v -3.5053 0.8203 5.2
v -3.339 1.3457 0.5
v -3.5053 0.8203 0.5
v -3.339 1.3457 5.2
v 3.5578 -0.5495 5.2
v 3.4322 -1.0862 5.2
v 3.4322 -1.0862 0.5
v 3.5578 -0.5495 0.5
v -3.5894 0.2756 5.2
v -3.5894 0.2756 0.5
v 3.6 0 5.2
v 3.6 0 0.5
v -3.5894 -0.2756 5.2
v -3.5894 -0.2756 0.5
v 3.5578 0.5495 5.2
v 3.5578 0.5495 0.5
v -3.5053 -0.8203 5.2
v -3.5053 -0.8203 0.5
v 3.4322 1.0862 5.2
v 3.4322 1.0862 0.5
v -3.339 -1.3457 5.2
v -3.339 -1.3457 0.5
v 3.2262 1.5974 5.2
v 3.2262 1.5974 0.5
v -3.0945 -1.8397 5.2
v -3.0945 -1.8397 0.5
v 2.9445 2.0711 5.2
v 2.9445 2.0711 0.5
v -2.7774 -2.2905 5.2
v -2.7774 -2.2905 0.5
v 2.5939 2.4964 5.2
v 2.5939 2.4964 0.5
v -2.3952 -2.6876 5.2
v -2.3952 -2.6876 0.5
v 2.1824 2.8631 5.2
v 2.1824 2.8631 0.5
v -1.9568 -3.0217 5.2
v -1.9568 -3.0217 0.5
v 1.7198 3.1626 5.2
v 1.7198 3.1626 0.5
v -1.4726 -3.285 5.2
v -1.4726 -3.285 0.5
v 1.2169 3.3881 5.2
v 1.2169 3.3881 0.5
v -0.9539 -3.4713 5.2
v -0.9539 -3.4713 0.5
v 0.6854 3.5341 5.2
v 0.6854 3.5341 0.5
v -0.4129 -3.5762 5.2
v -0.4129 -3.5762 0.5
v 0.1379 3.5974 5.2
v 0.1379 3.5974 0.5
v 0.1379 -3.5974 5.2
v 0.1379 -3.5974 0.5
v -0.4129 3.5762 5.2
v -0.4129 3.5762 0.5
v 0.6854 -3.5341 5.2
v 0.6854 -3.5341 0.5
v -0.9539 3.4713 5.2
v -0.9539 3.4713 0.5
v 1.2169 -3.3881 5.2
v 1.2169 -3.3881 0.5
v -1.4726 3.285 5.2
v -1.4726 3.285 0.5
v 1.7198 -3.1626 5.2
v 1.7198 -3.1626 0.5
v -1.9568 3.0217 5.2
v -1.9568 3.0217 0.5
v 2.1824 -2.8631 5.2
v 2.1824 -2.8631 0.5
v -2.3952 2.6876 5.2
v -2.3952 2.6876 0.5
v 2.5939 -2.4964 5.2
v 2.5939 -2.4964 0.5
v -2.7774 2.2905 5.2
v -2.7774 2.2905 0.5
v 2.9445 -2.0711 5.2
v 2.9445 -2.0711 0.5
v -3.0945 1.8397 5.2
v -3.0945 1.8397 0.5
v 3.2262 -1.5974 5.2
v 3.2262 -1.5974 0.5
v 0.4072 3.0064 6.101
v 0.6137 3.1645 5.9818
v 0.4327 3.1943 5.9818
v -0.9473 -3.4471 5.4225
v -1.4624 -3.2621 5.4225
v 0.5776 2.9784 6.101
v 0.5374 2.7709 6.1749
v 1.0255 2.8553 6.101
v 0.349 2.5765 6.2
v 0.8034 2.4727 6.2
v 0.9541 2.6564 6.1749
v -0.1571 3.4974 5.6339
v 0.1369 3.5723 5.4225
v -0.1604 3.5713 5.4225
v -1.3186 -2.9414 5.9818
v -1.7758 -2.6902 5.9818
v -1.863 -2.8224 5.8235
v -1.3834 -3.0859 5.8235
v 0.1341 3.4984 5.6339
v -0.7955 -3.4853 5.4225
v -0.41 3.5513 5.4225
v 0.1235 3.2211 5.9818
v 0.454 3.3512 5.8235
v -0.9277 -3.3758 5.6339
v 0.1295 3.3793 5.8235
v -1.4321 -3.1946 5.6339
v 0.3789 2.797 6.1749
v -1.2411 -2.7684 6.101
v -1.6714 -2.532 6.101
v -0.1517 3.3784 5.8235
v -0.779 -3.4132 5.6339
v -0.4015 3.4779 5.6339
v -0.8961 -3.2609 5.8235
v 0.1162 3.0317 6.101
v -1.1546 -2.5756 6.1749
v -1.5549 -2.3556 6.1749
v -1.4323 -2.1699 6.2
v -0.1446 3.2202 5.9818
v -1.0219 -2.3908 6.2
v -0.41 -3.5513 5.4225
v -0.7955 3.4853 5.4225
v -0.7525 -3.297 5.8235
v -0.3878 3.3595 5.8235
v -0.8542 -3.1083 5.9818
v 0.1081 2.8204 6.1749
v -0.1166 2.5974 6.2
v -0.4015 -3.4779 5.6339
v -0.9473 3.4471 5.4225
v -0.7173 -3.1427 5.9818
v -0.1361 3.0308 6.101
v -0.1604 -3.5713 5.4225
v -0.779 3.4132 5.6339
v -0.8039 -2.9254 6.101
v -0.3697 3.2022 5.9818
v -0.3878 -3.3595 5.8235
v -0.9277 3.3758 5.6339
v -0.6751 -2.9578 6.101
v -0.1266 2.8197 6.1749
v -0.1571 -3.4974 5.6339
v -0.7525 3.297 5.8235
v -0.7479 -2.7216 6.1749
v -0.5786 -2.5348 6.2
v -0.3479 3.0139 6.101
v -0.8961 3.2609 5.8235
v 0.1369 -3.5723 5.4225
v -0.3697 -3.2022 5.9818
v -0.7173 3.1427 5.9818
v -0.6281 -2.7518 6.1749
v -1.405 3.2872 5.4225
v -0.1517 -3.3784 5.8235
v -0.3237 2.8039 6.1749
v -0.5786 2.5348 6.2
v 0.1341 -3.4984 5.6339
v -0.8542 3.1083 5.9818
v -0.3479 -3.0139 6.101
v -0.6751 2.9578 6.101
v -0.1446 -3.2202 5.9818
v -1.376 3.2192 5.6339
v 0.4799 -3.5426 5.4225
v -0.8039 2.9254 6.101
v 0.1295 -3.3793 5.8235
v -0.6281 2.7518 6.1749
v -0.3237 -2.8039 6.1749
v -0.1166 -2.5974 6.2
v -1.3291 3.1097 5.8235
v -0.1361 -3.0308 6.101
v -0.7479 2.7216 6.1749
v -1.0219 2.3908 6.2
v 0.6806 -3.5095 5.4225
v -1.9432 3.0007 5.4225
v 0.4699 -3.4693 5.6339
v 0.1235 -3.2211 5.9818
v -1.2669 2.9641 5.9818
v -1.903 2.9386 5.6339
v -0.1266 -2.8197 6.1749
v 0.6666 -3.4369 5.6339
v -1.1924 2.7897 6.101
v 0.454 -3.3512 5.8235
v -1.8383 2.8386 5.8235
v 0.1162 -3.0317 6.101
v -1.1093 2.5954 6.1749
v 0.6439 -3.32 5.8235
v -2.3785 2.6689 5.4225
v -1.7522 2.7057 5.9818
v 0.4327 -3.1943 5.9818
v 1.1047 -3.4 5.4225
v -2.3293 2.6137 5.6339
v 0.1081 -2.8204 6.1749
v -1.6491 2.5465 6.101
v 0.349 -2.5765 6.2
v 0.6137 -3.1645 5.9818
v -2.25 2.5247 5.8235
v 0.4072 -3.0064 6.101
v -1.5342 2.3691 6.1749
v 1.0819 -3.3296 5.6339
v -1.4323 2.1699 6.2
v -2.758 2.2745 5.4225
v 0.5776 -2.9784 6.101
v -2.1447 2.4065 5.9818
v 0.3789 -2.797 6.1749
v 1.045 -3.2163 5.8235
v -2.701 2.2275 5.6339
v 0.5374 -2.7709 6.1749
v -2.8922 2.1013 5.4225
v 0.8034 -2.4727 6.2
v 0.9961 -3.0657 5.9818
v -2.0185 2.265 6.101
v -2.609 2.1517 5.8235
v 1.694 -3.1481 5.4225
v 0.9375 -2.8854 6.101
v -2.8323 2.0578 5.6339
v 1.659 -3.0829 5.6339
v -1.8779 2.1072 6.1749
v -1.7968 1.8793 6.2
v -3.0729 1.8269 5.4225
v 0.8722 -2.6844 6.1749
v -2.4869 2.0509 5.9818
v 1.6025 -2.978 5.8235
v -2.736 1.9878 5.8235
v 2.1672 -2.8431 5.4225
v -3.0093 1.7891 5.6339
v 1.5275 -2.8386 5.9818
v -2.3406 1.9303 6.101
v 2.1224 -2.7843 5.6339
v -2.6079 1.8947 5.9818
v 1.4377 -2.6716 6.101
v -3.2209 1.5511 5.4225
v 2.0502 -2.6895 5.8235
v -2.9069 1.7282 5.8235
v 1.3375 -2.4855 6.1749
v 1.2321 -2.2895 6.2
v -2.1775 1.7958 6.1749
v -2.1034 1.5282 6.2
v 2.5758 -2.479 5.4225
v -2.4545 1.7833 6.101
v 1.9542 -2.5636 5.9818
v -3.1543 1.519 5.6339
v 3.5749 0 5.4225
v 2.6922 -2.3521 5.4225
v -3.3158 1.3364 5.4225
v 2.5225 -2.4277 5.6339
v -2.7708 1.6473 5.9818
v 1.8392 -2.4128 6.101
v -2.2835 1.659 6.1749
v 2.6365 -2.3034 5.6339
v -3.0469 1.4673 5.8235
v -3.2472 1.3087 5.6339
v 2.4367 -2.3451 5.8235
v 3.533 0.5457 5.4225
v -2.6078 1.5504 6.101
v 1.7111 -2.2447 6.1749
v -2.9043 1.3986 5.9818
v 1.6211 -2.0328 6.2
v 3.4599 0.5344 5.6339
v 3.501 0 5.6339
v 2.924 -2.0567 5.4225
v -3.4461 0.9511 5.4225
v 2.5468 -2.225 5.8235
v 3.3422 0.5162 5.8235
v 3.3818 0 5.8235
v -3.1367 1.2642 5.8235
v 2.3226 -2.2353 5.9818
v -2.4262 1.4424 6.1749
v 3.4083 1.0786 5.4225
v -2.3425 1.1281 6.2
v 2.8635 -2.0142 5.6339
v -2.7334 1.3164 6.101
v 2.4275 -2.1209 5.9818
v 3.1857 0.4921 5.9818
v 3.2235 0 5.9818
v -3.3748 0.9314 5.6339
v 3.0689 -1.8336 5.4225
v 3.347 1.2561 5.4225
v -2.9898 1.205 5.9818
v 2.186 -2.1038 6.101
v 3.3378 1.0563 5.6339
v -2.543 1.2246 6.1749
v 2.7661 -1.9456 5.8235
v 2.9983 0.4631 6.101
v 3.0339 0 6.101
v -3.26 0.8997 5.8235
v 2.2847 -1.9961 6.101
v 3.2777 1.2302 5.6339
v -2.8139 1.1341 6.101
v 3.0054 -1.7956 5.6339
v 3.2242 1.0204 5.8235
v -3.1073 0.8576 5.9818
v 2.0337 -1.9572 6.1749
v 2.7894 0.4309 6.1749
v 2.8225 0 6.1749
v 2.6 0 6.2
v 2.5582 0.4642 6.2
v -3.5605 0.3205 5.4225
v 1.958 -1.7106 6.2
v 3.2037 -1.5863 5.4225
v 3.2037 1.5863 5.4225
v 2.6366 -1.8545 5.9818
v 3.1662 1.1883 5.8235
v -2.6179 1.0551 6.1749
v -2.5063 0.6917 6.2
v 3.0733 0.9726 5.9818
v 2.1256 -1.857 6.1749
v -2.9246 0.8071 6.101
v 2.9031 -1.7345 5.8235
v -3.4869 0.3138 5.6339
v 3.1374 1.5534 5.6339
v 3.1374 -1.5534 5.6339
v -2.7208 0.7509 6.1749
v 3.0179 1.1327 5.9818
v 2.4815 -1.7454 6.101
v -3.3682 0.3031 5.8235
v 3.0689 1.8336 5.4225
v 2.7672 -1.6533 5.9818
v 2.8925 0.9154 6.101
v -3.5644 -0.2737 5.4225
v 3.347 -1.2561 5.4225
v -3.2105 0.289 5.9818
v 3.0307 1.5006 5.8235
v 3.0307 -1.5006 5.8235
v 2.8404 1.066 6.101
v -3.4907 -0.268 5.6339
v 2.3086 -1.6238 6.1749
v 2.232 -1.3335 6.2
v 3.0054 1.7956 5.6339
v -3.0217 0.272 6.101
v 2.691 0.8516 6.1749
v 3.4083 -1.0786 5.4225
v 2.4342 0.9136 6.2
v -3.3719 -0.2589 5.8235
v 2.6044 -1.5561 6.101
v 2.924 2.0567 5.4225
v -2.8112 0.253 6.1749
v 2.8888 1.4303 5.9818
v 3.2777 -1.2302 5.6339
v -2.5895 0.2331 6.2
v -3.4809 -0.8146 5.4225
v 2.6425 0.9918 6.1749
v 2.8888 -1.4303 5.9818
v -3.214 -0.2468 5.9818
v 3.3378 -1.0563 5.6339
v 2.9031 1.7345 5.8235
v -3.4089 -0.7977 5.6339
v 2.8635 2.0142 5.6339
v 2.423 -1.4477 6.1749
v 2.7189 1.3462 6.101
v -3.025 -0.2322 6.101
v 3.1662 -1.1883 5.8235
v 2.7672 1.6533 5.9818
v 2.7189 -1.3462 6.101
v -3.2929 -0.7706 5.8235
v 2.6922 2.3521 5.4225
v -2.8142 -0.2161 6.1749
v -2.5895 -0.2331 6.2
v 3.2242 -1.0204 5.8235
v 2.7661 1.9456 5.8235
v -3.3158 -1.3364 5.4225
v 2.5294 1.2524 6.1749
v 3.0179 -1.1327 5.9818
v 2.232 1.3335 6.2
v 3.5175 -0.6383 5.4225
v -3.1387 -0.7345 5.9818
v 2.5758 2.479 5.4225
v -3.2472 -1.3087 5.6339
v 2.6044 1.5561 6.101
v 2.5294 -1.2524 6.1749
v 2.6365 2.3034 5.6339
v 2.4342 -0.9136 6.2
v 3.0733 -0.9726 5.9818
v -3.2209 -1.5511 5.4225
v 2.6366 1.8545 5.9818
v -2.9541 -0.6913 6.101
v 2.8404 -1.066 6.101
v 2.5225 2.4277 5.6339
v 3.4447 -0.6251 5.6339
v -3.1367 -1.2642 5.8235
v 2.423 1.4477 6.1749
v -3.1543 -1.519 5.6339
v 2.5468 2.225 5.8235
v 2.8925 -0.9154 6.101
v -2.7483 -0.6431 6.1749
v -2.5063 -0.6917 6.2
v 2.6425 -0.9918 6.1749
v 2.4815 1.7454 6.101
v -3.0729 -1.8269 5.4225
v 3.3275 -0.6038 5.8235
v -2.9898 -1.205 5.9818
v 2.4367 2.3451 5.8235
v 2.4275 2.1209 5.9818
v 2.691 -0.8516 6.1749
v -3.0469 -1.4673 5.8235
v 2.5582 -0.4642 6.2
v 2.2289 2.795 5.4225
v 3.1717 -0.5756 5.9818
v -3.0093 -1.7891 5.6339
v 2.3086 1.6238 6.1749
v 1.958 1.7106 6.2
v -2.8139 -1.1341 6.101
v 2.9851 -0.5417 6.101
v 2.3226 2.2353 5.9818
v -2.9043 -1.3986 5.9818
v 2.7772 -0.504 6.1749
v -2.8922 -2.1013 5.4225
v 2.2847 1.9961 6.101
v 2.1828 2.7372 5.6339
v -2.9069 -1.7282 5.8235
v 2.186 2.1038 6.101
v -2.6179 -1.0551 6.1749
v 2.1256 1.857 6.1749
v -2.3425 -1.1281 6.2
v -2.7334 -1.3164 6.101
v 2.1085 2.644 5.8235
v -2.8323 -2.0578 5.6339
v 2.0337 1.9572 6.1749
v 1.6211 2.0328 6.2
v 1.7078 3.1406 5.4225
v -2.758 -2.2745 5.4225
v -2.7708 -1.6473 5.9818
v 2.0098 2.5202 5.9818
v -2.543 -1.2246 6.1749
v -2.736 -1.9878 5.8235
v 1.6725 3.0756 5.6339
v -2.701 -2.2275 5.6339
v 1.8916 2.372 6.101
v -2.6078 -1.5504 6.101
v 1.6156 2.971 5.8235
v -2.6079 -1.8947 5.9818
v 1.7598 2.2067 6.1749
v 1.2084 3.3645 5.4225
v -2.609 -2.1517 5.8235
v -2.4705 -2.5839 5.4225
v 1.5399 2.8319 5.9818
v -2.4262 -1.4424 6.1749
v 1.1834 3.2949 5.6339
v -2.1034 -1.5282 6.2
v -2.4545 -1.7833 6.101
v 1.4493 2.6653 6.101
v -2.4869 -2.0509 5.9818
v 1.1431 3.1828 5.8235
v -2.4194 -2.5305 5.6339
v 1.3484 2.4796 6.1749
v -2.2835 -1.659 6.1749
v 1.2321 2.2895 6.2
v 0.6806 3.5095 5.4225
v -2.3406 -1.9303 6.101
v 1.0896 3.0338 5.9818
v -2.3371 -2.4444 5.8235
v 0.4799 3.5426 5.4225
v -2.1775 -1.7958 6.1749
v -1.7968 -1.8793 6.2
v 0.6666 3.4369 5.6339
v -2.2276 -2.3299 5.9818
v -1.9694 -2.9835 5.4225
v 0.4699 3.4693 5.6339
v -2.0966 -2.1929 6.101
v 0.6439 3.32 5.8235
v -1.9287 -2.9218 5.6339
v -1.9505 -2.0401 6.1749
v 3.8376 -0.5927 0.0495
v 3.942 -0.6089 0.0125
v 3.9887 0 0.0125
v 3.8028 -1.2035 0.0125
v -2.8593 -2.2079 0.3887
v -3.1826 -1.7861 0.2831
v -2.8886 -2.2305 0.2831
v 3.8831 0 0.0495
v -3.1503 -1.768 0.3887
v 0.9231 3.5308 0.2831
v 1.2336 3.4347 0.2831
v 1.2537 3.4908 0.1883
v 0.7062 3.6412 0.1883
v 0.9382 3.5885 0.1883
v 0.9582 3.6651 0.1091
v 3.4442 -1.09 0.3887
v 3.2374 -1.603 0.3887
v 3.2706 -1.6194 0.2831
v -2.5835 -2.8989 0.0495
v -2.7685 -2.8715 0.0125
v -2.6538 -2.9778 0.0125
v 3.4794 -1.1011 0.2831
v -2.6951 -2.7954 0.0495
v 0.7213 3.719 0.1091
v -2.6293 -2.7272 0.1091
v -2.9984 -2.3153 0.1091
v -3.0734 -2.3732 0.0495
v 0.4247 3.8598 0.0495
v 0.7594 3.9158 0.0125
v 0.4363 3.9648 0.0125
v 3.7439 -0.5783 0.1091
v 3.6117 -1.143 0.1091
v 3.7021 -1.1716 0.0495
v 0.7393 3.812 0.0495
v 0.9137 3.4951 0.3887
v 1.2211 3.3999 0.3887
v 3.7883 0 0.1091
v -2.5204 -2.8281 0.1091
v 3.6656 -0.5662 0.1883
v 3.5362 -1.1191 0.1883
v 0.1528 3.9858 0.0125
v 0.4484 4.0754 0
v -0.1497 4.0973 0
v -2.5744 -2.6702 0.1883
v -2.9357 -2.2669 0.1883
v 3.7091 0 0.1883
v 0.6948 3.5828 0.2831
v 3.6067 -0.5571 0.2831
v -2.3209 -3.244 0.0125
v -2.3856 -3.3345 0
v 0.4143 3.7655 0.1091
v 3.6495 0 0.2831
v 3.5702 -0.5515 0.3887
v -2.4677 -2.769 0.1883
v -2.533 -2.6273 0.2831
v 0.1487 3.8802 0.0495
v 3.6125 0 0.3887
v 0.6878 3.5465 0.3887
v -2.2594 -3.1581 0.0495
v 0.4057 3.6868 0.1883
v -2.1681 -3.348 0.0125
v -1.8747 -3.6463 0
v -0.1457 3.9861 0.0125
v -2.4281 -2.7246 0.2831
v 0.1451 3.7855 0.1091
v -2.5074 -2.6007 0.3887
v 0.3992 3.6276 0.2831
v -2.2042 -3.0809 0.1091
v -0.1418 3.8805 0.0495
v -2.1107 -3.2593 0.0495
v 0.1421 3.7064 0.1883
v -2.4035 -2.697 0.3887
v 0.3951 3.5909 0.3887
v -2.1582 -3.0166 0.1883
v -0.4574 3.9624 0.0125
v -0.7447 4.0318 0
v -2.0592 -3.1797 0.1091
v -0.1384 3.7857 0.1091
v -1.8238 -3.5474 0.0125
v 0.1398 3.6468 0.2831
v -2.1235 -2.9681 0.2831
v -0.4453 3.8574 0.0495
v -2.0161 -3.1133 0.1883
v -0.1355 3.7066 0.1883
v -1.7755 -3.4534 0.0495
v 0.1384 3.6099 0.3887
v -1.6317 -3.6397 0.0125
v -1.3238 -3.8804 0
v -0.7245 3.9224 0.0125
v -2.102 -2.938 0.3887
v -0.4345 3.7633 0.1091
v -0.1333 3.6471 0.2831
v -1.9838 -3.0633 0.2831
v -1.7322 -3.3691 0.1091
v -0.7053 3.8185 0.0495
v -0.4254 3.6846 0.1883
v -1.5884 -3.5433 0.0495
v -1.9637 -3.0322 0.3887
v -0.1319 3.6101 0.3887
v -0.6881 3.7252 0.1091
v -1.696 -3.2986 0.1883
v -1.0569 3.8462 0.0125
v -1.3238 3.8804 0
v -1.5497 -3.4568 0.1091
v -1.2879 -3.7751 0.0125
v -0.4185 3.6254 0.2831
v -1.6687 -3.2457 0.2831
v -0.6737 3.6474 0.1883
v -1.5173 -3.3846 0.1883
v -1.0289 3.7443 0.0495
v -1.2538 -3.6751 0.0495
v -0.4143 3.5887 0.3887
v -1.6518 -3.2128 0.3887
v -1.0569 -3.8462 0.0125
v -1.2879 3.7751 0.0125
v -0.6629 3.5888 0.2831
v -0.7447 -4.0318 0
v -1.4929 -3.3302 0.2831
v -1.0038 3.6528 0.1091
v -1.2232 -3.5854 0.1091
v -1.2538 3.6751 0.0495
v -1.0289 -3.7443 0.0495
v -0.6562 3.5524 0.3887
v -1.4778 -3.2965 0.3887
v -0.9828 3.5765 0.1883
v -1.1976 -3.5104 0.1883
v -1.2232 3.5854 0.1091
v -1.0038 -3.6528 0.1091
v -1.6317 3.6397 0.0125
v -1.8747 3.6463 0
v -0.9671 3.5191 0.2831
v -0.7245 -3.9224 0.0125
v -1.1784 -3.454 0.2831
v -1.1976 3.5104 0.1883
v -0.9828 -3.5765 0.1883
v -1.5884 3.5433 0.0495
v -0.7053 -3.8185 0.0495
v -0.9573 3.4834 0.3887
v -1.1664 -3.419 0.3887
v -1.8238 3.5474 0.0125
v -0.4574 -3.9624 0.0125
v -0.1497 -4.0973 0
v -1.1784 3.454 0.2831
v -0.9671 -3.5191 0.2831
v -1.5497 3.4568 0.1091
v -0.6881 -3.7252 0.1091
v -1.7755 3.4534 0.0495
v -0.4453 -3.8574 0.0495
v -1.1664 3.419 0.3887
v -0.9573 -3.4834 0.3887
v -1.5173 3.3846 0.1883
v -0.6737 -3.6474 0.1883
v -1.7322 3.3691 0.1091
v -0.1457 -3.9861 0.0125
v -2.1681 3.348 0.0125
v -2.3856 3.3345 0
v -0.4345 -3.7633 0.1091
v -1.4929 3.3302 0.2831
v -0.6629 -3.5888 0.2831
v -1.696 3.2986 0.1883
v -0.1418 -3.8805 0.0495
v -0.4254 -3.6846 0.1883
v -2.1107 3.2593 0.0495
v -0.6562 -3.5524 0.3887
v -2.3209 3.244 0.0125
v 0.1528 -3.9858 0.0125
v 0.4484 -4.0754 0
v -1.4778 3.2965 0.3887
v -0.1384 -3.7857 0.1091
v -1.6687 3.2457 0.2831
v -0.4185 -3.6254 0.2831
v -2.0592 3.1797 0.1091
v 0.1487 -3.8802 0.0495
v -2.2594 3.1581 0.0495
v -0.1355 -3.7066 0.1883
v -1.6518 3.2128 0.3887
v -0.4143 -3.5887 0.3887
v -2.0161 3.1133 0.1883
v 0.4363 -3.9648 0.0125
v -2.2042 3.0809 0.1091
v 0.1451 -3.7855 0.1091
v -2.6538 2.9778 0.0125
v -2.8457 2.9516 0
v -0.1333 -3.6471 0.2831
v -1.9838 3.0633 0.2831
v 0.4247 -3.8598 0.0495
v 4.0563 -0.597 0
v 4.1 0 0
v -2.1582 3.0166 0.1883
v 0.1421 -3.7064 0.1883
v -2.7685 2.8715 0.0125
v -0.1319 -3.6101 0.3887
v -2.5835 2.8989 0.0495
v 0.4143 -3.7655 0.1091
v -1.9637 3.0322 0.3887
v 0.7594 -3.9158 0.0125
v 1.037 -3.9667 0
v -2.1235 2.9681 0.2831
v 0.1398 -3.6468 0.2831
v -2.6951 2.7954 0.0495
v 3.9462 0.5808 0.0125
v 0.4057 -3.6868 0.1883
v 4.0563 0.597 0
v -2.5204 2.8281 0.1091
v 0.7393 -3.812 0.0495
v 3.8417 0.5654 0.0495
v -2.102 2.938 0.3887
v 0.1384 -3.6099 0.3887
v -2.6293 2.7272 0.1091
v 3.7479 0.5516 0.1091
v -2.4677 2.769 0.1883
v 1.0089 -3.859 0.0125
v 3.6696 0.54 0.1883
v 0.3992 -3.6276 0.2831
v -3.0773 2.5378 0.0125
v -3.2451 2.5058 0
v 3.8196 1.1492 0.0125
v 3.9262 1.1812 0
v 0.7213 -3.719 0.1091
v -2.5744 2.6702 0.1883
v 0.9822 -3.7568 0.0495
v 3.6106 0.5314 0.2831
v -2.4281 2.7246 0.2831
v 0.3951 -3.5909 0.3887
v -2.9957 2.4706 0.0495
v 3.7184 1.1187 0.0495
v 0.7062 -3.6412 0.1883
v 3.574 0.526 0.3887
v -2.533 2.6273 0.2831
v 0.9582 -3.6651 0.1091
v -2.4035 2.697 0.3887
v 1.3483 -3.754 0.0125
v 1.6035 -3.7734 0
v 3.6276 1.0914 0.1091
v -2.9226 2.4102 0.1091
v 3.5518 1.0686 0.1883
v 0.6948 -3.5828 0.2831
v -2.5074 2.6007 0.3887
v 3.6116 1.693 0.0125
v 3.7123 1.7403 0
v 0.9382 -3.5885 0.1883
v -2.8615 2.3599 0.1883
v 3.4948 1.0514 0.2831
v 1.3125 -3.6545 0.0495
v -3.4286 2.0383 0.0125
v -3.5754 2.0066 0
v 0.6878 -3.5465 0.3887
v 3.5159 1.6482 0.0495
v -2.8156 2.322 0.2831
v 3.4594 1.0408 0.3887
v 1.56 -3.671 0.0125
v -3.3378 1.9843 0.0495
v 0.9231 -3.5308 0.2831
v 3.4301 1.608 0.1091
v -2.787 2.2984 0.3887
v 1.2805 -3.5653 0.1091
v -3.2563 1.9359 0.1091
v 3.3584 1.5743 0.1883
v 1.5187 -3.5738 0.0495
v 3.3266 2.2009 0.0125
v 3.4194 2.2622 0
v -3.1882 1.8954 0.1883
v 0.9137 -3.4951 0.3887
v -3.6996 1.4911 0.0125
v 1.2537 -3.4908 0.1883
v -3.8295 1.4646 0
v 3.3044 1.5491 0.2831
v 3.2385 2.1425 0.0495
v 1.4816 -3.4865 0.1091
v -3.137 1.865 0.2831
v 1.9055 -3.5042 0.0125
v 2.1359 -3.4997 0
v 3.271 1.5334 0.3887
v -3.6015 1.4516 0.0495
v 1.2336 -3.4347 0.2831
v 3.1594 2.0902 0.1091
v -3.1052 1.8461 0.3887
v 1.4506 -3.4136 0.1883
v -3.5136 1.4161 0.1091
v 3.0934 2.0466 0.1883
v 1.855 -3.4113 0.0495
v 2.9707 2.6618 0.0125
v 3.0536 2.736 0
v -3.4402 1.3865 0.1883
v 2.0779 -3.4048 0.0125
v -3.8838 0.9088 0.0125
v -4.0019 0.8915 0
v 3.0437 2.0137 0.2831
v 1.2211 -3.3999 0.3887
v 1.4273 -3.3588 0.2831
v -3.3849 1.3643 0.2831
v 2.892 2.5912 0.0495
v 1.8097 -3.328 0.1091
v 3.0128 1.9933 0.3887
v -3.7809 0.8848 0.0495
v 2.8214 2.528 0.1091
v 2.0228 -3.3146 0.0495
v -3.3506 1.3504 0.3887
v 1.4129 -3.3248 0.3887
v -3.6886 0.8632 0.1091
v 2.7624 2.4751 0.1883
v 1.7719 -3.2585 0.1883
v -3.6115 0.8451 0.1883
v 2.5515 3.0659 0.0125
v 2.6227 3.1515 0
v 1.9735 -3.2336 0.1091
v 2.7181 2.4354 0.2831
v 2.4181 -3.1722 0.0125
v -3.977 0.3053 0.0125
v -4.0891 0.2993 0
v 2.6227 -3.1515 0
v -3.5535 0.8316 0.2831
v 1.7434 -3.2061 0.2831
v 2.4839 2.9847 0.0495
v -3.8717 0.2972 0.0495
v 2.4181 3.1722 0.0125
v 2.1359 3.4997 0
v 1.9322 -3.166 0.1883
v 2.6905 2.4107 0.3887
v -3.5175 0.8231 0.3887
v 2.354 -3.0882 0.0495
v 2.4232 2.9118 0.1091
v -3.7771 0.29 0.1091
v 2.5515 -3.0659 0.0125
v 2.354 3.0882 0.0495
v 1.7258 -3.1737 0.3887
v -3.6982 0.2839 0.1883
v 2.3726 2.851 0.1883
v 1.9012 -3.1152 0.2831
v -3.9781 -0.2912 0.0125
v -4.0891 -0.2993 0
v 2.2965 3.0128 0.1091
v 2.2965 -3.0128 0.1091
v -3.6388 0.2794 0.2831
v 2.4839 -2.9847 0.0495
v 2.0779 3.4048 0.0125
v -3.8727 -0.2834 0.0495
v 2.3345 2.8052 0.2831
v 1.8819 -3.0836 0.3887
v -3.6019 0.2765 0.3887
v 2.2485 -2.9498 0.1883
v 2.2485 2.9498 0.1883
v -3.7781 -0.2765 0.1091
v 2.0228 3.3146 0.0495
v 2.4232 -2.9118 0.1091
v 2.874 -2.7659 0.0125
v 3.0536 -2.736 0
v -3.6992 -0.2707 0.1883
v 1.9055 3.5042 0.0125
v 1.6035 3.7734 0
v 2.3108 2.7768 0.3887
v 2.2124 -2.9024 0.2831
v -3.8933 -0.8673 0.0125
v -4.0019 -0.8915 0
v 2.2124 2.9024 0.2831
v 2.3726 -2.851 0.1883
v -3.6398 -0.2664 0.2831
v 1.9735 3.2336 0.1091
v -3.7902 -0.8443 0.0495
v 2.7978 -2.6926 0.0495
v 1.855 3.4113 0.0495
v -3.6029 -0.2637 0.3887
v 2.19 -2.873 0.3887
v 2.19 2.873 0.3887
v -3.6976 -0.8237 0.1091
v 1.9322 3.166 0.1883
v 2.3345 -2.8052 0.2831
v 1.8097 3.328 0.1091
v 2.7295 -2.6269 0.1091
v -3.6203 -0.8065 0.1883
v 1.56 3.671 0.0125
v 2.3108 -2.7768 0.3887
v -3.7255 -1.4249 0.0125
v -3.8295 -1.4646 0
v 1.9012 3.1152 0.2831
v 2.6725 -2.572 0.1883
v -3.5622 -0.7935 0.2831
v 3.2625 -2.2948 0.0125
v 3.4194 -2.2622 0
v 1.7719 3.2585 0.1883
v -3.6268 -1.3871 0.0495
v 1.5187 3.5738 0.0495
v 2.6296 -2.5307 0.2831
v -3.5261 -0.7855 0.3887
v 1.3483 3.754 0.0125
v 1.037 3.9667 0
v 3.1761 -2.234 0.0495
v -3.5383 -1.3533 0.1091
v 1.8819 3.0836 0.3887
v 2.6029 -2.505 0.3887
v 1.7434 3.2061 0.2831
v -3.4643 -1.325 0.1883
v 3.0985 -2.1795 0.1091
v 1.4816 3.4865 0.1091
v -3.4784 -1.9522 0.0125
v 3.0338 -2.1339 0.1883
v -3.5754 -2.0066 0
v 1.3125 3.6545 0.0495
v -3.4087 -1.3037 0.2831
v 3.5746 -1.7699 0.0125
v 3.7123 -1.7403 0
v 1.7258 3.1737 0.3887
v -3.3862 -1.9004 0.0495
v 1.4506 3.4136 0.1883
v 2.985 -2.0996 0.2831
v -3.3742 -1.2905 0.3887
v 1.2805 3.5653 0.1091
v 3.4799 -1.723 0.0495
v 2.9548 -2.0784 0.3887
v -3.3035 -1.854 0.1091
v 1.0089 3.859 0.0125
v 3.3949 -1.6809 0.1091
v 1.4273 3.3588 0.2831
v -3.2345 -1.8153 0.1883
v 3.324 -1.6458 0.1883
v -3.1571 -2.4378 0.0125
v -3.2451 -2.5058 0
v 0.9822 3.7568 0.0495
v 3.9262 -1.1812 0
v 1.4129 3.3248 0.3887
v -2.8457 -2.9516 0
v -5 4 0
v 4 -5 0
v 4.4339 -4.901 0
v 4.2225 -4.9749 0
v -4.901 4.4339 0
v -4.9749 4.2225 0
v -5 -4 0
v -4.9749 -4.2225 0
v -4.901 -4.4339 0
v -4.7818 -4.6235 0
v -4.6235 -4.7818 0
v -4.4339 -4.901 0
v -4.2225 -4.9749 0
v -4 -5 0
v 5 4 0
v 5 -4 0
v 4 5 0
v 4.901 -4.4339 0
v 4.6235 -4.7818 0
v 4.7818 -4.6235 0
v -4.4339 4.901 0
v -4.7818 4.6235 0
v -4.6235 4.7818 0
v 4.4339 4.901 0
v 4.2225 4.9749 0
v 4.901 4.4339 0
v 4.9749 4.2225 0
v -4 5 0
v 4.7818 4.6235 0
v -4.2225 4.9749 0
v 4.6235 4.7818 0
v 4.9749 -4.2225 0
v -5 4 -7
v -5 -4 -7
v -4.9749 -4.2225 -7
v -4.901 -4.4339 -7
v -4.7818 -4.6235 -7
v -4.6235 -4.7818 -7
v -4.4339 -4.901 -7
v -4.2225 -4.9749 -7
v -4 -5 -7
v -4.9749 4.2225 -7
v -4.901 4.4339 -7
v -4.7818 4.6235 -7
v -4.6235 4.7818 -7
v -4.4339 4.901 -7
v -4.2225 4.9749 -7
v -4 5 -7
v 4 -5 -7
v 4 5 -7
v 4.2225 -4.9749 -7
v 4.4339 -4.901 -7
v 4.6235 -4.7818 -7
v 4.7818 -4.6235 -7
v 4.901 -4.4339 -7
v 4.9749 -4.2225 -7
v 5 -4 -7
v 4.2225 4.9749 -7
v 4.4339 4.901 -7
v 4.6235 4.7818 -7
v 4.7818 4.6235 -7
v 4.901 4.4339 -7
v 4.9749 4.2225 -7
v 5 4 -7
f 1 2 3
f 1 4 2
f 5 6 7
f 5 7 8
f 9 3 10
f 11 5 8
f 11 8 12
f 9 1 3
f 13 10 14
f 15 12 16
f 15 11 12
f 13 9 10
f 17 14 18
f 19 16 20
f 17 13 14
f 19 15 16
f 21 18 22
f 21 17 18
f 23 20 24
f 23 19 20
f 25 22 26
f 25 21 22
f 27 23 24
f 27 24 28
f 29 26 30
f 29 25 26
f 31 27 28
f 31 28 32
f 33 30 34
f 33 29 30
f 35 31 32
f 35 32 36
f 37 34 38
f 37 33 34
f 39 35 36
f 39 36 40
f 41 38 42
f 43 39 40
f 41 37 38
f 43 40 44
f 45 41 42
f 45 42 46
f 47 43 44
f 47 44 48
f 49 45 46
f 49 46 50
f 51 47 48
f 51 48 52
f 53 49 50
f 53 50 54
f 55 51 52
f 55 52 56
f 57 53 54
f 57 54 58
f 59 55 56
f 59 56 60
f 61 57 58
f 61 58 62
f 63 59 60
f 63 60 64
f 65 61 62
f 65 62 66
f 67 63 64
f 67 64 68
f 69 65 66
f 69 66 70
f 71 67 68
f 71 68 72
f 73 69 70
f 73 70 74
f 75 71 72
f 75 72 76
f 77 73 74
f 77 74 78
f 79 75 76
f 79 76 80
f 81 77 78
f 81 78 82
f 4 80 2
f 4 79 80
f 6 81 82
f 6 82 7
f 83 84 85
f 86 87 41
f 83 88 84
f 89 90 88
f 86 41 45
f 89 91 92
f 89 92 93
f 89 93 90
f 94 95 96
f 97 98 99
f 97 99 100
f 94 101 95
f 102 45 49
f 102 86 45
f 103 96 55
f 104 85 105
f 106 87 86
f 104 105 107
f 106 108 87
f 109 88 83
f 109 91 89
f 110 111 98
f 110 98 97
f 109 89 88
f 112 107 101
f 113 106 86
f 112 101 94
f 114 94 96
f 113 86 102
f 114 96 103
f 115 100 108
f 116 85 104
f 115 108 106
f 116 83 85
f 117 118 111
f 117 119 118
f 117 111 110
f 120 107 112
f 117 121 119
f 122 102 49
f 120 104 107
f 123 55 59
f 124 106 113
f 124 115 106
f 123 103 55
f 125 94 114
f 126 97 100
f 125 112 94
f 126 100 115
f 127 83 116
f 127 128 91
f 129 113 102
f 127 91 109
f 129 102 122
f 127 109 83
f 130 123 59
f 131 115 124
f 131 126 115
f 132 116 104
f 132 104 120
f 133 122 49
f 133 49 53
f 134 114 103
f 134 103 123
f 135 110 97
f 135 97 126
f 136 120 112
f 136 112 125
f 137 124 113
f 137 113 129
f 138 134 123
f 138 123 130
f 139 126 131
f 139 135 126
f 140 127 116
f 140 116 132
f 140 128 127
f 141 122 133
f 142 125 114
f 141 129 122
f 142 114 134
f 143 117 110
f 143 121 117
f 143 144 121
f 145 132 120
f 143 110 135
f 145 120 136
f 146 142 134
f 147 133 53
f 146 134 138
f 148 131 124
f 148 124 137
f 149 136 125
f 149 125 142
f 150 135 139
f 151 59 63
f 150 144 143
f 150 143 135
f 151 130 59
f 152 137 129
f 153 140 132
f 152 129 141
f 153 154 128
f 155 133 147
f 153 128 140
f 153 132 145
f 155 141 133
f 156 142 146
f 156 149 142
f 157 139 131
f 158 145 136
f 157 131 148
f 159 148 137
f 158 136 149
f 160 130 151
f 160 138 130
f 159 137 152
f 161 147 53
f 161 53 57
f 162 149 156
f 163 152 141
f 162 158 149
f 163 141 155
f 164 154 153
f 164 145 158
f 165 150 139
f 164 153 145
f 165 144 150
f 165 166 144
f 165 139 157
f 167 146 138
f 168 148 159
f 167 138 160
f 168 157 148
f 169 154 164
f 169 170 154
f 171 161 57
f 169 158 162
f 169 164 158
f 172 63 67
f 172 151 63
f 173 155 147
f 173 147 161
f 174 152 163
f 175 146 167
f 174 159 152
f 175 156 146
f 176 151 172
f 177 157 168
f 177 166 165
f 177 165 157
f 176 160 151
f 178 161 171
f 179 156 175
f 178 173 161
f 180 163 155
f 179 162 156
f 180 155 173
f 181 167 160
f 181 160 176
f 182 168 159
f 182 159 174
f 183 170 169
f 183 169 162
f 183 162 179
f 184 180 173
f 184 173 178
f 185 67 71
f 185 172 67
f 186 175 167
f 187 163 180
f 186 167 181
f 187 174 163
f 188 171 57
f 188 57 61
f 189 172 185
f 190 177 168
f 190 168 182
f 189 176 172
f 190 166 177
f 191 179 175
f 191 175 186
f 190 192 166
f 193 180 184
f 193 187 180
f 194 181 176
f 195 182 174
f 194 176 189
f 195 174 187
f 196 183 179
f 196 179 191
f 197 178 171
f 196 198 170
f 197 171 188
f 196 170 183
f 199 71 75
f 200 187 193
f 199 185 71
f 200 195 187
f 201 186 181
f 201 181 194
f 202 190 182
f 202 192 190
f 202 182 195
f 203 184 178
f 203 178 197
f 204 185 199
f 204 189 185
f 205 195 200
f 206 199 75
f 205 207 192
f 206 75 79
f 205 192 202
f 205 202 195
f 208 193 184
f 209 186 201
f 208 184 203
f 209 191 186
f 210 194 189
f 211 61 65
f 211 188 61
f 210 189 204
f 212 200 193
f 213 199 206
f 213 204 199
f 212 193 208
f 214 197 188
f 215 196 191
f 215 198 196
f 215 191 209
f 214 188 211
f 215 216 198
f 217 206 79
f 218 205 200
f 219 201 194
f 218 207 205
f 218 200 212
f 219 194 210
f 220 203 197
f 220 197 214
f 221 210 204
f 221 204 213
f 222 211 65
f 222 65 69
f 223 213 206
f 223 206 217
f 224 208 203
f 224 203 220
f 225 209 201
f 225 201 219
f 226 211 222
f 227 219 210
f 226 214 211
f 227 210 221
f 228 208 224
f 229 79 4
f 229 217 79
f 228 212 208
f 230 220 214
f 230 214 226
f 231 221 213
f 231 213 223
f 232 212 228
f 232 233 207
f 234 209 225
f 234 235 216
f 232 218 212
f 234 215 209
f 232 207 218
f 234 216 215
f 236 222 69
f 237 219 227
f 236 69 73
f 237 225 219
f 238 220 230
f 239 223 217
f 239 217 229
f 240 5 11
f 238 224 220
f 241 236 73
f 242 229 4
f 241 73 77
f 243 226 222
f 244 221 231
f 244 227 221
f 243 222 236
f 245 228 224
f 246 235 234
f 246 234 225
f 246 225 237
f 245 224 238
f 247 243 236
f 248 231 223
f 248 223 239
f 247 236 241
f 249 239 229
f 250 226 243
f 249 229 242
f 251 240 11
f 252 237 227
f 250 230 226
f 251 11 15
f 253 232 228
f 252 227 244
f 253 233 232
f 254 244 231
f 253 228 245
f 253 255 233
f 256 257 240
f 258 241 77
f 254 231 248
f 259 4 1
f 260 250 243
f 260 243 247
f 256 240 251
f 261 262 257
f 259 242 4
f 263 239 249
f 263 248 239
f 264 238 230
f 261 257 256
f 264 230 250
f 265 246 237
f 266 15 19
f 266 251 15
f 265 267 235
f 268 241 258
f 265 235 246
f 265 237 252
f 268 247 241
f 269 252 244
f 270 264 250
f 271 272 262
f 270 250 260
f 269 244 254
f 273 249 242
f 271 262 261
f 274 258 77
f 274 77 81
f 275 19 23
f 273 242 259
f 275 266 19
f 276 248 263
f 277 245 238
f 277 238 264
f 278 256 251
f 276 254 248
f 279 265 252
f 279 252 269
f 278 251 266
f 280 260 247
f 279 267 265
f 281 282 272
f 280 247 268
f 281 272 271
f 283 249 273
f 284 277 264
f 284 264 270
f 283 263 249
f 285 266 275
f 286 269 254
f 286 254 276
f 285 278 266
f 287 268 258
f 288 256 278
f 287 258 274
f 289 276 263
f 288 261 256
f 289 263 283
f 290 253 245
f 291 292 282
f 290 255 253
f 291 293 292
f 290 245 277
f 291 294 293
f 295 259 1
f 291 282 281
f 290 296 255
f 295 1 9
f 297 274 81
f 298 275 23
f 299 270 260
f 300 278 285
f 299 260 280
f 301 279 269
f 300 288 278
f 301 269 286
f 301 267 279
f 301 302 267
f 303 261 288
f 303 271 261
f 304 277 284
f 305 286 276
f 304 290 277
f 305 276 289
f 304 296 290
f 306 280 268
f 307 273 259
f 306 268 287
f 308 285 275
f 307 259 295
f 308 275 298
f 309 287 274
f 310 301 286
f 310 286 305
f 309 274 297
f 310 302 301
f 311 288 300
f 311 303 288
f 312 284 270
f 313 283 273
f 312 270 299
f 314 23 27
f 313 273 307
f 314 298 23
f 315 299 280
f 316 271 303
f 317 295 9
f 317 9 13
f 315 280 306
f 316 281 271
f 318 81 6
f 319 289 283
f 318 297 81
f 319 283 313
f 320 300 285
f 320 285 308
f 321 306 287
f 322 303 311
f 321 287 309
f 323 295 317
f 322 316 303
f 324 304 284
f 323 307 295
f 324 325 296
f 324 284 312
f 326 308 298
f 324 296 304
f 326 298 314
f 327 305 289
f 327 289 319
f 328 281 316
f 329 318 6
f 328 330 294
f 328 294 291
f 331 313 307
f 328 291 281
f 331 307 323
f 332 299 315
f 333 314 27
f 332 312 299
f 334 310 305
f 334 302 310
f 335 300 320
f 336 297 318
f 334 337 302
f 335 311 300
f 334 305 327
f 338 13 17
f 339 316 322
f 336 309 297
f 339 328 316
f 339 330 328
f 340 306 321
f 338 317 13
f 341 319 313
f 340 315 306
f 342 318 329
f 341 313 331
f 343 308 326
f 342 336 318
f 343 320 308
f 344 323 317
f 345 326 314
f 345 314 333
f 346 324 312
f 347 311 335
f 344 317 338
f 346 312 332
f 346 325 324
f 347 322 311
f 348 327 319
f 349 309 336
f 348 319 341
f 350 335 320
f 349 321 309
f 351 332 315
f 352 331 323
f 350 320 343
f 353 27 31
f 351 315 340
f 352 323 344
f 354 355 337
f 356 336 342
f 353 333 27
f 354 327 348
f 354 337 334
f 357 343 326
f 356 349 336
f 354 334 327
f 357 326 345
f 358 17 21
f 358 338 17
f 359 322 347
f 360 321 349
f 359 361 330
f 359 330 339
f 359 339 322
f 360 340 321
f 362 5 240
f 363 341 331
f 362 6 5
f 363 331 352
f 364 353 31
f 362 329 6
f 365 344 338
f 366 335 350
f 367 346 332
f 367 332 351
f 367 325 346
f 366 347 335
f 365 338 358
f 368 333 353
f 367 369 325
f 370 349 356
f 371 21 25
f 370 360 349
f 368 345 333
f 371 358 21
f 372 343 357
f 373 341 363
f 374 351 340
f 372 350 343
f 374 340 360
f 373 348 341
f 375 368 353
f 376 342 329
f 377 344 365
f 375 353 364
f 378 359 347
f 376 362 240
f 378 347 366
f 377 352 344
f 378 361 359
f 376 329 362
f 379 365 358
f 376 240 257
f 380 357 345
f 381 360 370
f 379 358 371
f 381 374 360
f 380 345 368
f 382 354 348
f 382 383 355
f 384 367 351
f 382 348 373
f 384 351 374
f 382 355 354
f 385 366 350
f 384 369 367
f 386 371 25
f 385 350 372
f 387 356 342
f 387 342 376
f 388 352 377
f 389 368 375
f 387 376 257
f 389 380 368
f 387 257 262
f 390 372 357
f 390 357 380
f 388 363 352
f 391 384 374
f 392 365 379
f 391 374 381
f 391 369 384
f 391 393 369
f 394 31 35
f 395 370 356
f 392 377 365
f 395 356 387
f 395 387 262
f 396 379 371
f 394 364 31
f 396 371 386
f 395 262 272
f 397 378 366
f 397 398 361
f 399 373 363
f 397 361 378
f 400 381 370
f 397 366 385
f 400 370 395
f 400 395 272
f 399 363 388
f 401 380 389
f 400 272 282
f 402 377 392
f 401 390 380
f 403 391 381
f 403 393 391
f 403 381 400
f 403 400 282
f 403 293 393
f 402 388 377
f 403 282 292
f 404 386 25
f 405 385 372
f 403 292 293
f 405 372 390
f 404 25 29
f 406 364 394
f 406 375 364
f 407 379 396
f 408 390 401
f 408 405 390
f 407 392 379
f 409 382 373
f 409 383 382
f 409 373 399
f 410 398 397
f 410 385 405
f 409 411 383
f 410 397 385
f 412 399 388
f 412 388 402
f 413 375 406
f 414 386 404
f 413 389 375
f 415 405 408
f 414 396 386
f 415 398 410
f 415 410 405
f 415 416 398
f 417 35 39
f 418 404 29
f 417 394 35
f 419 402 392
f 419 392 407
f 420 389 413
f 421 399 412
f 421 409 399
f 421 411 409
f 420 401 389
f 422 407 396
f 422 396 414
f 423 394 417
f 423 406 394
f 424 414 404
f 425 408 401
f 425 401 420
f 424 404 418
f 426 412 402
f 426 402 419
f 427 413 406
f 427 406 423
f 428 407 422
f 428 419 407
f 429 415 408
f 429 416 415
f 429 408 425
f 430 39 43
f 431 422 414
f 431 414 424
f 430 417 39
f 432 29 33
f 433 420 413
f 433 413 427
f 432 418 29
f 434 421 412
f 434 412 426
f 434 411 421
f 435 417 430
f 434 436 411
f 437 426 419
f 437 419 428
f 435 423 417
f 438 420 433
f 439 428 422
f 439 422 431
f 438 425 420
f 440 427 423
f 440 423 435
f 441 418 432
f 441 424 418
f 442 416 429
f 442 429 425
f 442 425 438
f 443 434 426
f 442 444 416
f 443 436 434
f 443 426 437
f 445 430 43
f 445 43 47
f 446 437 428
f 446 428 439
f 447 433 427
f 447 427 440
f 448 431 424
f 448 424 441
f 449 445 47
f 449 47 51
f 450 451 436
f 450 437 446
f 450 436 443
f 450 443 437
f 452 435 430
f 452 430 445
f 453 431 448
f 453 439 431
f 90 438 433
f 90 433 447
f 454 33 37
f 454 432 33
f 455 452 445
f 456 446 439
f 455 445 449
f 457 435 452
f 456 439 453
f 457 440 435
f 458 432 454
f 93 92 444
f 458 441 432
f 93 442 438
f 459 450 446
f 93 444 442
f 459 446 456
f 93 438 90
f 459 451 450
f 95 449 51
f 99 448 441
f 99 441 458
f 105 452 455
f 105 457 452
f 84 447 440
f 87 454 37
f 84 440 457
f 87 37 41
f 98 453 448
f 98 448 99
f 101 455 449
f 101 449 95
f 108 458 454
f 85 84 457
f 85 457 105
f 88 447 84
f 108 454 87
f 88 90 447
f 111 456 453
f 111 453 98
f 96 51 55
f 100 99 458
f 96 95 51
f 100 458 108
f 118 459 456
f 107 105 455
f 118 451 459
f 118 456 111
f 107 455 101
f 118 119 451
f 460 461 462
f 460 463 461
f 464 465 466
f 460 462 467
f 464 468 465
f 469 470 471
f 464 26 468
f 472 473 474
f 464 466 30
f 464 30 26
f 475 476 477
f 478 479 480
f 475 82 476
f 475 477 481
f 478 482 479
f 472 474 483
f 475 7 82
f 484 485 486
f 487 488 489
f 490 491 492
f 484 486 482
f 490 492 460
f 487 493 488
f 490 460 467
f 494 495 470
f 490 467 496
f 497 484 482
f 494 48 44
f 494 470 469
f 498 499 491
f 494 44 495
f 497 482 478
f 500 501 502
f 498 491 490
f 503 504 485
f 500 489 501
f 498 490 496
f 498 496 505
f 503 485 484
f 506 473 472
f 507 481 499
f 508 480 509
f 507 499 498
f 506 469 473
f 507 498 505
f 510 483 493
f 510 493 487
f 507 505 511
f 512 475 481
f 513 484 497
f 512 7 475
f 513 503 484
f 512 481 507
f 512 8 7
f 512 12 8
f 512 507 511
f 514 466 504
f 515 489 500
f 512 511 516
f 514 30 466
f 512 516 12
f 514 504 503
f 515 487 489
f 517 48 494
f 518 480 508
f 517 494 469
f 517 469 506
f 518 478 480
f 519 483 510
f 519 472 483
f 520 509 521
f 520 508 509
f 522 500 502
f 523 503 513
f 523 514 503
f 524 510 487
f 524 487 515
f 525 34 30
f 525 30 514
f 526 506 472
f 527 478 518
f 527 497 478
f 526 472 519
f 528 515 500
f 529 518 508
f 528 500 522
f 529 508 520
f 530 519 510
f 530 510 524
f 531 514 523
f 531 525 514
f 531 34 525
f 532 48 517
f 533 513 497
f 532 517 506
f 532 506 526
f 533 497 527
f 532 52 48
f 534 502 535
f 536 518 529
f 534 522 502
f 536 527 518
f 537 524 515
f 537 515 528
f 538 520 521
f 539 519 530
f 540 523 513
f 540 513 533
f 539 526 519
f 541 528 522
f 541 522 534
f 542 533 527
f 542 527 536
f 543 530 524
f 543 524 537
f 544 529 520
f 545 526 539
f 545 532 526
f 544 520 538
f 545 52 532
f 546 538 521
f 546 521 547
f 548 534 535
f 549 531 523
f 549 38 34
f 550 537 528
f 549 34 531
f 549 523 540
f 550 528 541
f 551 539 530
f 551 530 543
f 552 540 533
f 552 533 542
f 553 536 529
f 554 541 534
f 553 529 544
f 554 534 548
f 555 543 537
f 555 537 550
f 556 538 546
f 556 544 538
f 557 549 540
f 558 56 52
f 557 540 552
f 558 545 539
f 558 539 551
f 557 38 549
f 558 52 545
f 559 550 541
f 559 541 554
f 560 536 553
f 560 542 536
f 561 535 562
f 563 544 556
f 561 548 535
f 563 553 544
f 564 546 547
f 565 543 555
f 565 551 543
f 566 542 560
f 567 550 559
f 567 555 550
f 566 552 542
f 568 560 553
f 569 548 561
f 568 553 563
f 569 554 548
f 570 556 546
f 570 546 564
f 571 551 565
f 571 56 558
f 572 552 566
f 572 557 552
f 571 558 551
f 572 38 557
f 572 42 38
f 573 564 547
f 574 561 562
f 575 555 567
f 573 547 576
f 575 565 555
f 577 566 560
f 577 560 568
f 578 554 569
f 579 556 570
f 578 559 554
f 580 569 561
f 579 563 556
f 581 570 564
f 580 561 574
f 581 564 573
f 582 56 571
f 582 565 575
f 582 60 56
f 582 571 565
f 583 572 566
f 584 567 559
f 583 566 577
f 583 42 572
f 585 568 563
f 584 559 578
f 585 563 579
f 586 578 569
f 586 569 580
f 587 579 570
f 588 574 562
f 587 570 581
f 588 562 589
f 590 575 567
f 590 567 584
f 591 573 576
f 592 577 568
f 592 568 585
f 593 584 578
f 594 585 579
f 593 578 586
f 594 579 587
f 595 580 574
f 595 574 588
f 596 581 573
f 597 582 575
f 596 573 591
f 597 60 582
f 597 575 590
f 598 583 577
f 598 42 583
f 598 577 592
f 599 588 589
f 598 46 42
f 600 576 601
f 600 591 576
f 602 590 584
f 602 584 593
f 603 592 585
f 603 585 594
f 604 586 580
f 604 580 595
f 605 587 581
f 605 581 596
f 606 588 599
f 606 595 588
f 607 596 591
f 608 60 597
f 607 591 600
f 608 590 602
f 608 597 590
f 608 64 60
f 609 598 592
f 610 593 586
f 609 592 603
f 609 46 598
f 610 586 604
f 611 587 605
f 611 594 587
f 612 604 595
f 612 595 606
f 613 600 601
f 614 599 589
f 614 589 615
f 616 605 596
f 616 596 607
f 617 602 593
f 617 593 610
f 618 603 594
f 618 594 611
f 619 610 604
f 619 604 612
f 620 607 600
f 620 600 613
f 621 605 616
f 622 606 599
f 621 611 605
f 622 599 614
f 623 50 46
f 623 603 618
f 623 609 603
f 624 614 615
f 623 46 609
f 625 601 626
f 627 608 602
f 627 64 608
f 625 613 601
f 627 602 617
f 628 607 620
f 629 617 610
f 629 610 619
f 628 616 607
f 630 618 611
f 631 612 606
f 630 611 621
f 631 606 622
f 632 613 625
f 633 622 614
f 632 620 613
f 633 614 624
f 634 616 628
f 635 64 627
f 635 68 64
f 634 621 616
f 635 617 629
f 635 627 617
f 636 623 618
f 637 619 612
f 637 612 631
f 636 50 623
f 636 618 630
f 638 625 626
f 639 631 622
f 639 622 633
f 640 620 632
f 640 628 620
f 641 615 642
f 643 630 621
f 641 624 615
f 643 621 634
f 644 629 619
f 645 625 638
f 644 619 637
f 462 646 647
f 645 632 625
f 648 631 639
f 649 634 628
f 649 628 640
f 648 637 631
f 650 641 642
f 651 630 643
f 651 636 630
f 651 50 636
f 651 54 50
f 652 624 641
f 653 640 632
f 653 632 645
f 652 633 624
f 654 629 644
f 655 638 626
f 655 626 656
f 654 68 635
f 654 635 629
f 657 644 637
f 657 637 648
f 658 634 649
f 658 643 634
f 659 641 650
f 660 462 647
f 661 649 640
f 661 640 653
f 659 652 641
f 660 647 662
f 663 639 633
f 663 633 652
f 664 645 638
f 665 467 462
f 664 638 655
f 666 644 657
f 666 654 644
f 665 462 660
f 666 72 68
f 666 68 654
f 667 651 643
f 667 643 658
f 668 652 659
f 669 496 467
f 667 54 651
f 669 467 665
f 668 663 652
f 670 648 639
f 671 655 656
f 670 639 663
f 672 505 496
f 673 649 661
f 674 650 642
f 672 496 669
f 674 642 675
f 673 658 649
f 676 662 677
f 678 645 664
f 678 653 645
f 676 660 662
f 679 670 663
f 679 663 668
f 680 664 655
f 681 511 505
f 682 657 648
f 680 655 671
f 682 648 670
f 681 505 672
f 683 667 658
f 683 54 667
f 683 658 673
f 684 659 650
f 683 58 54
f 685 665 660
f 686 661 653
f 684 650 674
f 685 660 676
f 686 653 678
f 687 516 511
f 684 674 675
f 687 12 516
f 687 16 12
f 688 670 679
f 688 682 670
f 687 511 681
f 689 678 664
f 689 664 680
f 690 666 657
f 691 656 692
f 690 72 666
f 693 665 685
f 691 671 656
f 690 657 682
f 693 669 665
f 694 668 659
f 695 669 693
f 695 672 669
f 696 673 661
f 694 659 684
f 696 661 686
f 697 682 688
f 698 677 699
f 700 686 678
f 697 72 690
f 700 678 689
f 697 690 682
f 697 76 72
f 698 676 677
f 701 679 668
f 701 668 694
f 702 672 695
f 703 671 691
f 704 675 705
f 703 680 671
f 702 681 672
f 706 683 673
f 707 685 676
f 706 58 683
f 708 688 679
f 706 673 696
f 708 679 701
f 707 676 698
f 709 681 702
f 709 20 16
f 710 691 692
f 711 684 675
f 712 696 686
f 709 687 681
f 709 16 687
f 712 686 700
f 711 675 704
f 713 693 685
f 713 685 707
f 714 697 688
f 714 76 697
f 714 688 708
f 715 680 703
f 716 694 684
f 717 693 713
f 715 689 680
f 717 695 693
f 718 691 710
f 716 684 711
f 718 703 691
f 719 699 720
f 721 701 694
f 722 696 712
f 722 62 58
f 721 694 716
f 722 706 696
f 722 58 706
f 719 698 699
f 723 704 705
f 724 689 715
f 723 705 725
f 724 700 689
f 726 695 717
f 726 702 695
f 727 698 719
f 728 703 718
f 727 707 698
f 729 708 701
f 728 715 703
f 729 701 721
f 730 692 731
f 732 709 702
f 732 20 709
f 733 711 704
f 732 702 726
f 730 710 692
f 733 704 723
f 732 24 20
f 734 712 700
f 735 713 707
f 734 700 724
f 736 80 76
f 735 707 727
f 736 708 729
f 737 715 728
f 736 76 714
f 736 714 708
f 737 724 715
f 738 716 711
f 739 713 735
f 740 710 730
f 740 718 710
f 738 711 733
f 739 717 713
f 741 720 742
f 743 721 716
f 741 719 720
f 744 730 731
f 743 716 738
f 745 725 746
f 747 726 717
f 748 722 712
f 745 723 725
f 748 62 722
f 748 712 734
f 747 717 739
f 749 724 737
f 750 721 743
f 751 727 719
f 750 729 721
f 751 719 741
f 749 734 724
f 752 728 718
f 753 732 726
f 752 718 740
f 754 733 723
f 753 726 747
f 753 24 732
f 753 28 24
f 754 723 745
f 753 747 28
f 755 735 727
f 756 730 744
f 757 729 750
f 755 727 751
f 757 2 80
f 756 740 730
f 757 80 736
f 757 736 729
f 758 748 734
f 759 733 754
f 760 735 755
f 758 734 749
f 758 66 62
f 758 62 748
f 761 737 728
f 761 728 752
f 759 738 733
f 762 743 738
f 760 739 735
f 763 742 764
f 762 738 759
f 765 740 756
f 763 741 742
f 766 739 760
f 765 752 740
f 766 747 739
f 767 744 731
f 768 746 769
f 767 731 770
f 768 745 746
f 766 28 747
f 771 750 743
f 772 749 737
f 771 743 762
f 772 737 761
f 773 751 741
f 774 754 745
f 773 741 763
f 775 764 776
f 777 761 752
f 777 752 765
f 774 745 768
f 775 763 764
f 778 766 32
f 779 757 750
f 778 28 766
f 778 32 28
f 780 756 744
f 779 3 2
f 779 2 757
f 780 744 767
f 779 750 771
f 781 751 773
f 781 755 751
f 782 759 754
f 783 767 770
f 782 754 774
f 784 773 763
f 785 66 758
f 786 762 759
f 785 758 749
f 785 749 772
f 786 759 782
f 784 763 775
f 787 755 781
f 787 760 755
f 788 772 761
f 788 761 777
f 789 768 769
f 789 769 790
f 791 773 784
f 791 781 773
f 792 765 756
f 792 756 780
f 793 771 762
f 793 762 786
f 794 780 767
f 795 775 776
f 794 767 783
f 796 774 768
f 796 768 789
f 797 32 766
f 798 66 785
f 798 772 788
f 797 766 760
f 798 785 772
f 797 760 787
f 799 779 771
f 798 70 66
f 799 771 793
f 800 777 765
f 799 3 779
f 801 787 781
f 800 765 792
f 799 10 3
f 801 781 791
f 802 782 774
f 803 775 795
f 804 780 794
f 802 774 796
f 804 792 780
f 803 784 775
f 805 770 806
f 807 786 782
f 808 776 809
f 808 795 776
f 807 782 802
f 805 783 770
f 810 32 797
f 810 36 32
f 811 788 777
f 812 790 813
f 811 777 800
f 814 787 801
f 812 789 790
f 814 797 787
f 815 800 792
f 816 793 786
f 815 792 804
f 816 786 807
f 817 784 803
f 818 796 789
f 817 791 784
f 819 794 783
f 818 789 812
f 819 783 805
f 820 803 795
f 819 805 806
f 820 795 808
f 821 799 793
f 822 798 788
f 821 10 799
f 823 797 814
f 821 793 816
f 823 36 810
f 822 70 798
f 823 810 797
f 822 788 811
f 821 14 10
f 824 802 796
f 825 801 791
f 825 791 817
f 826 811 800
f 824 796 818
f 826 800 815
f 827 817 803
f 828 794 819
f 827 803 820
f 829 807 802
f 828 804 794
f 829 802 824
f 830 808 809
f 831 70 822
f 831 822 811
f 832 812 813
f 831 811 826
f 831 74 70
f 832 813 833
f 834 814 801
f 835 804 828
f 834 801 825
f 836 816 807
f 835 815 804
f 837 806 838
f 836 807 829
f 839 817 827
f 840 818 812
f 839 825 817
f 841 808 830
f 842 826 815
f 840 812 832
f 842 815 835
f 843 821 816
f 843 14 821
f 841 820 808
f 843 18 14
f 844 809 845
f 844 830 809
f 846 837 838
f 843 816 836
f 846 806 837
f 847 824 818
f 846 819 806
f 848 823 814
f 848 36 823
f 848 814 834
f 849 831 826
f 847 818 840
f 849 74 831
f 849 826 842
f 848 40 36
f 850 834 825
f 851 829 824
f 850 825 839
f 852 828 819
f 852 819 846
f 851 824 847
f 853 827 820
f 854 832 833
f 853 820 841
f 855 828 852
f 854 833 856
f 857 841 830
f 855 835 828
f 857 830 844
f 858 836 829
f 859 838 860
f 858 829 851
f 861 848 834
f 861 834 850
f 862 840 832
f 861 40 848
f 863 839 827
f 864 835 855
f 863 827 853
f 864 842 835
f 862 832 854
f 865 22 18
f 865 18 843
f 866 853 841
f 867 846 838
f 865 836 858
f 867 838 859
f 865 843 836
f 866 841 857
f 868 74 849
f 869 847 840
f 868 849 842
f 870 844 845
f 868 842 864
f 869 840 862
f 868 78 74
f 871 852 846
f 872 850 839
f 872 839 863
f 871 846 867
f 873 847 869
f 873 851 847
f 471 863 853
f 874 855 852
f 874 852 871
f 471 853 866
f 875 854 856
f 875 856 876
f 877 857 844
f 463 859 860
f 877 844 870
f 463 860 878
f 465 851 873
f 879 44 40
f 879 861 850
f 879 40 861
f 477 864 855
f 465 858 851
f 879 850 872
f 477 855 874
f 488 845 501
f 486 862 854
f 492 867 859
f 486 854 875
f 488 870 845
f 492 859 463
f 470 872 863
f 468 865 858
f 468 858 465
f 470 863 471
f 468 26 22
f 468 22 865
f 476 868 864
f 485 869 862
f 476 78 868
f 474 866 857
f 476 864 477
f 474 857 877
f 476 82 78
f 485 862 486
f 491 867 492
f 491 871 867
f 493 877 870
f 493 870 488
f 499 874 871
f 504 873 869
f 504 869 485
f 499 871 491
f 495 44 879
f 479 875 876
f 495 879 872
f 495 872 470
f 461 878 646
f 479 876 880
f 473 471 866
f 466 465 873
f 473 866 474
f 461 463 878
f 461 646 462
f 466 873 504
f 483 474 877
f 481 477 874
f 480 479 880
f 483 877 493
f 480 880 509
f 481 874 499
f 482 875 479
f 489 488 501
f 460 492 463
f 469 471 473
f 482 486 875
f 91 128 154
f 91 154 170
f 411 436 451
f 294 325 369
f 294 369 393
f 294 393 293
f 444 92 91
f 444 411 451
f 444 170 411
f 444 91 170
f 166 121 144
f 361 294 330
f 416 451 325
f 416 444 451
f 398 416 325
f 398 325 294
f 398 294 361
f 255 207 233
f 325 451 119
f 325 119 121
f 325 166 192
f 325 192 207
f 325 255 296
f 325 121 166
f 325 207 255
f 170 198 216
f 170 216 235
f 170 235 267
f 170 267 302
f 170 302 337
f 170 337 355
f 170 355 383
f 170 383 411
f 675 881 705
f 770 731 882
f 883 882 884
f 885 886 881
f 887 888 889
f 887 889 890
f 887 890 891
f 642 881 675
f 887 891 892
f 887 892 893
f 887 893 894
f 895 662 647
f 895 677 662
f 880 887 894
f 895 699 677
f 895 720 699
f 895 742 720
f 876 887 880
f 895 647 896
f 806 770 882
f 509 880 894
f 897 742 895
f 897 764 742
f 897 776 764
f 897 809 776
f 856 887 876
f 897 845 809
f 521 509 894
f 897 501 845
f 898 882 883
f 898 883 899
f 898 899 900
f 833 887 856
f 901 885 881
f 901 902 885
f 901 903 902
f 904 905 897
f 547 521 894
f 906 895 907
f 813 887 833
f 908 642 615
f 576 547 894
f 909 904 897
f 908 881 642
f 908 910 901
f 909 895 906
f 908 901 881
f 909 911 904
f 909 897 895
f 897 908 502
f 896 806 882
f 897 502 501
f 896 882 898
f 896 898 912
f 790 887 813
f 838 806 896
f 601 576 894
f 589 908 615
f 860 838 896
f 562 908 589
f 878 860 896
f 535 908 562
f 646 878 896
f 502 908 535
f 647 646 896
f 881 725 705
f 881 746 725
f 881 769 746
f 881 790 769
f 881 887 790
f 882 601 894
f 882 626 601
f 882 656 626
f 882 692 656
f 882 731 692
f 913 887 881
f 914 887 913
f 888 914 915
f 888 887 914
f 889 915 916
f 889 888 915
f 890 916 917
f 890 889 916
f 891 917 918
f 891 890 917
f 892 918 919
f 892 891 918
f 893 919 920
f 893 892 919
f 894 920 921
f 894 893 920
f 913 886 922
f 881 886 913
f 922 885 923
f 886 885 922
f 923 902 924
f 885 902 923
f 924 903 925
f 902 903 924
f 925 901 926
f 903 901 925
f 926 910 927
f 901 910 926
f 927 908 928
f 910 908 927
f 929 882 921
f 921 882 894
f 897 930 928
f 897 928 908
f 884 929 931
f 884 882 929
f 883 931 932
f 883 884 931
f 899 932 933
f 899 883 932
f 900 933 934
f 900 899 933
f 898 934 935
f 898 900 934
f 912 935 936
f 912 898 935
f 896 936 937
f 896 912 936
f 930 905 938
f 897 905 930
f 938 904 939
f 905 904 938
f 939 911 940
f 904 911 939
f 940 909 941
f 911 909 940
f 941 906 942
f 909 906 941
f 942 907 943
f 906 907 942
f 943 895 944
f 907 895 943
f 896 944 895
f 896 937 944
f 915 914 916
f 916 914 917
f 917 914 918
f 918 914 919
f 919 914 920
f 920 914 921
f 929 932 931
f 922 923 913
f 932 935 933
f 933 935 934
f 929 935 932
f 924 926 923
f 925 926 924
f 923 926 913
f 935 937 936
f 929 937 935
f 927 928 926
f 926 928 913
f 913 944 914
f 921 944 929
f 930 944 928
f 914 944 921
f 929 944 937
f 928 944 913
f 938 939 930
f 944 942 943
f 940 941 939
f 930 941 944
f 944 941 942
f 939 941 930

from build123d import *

# Parameters (mm, degrees)
CYLINDER_R     = 3.6
CYLINDER_DEPTH = 6.2
BOX_W          = 10
BOX_H          = 10
BOX_DEPTH      = 7
FILLET_R       = 1
FILLET001_R    = 0.5
FILLET002_R    = 1


with BuildPart() as cylinder:
    # Cylinder → Cylinder (new body)
    with BuildSketch(Plane.XY):
        Circle(CYLINDER_R)
    extrude(amount=CYLINDER_DEPTH)


with BuildPart() as fillet002:
    # Box → Box (new body)
    with BuildSketch(Plane(origin=(-5, -5, -7), x_dir=(1, 0, 0), z_dir=(0, 0, 1))):
        with Locations((5, 5)):
            Rectangle(BOX_W, BOX_H)
    extrude(amount=BOX_DEPTH)

    # Fusion: union Cylinder
    add(cylinder.part)

    # Fillet
    fillet_edges = [fillet002.edges().sort_by_distance(p)[0] for p in [
        (-5, -5, -3.5),
        (-5, 5, -3.5),
        (5, -5, -3.5),
        (5, 5, -3.5),
    ]]
    fillet(fillet_edges, radius=FILLET_R)

    # Fillet001
    fillet001_edges = [fillet002.edges().sort_by_distance(p)[0] for p in [
        (-3.6, 0, 0),
    ]]
    fillet(fillet001_edges, radius=FILLET001_R)

    # Fillet002
    fillet002_edges = [fillet002.edges().sort_by_distance(p)[0] for p in [
        (-3.6, 0, 6.2),
    ]]
    fillet(fillet002_edges, radius=FILLET002_R)


solid = fillet002.part
